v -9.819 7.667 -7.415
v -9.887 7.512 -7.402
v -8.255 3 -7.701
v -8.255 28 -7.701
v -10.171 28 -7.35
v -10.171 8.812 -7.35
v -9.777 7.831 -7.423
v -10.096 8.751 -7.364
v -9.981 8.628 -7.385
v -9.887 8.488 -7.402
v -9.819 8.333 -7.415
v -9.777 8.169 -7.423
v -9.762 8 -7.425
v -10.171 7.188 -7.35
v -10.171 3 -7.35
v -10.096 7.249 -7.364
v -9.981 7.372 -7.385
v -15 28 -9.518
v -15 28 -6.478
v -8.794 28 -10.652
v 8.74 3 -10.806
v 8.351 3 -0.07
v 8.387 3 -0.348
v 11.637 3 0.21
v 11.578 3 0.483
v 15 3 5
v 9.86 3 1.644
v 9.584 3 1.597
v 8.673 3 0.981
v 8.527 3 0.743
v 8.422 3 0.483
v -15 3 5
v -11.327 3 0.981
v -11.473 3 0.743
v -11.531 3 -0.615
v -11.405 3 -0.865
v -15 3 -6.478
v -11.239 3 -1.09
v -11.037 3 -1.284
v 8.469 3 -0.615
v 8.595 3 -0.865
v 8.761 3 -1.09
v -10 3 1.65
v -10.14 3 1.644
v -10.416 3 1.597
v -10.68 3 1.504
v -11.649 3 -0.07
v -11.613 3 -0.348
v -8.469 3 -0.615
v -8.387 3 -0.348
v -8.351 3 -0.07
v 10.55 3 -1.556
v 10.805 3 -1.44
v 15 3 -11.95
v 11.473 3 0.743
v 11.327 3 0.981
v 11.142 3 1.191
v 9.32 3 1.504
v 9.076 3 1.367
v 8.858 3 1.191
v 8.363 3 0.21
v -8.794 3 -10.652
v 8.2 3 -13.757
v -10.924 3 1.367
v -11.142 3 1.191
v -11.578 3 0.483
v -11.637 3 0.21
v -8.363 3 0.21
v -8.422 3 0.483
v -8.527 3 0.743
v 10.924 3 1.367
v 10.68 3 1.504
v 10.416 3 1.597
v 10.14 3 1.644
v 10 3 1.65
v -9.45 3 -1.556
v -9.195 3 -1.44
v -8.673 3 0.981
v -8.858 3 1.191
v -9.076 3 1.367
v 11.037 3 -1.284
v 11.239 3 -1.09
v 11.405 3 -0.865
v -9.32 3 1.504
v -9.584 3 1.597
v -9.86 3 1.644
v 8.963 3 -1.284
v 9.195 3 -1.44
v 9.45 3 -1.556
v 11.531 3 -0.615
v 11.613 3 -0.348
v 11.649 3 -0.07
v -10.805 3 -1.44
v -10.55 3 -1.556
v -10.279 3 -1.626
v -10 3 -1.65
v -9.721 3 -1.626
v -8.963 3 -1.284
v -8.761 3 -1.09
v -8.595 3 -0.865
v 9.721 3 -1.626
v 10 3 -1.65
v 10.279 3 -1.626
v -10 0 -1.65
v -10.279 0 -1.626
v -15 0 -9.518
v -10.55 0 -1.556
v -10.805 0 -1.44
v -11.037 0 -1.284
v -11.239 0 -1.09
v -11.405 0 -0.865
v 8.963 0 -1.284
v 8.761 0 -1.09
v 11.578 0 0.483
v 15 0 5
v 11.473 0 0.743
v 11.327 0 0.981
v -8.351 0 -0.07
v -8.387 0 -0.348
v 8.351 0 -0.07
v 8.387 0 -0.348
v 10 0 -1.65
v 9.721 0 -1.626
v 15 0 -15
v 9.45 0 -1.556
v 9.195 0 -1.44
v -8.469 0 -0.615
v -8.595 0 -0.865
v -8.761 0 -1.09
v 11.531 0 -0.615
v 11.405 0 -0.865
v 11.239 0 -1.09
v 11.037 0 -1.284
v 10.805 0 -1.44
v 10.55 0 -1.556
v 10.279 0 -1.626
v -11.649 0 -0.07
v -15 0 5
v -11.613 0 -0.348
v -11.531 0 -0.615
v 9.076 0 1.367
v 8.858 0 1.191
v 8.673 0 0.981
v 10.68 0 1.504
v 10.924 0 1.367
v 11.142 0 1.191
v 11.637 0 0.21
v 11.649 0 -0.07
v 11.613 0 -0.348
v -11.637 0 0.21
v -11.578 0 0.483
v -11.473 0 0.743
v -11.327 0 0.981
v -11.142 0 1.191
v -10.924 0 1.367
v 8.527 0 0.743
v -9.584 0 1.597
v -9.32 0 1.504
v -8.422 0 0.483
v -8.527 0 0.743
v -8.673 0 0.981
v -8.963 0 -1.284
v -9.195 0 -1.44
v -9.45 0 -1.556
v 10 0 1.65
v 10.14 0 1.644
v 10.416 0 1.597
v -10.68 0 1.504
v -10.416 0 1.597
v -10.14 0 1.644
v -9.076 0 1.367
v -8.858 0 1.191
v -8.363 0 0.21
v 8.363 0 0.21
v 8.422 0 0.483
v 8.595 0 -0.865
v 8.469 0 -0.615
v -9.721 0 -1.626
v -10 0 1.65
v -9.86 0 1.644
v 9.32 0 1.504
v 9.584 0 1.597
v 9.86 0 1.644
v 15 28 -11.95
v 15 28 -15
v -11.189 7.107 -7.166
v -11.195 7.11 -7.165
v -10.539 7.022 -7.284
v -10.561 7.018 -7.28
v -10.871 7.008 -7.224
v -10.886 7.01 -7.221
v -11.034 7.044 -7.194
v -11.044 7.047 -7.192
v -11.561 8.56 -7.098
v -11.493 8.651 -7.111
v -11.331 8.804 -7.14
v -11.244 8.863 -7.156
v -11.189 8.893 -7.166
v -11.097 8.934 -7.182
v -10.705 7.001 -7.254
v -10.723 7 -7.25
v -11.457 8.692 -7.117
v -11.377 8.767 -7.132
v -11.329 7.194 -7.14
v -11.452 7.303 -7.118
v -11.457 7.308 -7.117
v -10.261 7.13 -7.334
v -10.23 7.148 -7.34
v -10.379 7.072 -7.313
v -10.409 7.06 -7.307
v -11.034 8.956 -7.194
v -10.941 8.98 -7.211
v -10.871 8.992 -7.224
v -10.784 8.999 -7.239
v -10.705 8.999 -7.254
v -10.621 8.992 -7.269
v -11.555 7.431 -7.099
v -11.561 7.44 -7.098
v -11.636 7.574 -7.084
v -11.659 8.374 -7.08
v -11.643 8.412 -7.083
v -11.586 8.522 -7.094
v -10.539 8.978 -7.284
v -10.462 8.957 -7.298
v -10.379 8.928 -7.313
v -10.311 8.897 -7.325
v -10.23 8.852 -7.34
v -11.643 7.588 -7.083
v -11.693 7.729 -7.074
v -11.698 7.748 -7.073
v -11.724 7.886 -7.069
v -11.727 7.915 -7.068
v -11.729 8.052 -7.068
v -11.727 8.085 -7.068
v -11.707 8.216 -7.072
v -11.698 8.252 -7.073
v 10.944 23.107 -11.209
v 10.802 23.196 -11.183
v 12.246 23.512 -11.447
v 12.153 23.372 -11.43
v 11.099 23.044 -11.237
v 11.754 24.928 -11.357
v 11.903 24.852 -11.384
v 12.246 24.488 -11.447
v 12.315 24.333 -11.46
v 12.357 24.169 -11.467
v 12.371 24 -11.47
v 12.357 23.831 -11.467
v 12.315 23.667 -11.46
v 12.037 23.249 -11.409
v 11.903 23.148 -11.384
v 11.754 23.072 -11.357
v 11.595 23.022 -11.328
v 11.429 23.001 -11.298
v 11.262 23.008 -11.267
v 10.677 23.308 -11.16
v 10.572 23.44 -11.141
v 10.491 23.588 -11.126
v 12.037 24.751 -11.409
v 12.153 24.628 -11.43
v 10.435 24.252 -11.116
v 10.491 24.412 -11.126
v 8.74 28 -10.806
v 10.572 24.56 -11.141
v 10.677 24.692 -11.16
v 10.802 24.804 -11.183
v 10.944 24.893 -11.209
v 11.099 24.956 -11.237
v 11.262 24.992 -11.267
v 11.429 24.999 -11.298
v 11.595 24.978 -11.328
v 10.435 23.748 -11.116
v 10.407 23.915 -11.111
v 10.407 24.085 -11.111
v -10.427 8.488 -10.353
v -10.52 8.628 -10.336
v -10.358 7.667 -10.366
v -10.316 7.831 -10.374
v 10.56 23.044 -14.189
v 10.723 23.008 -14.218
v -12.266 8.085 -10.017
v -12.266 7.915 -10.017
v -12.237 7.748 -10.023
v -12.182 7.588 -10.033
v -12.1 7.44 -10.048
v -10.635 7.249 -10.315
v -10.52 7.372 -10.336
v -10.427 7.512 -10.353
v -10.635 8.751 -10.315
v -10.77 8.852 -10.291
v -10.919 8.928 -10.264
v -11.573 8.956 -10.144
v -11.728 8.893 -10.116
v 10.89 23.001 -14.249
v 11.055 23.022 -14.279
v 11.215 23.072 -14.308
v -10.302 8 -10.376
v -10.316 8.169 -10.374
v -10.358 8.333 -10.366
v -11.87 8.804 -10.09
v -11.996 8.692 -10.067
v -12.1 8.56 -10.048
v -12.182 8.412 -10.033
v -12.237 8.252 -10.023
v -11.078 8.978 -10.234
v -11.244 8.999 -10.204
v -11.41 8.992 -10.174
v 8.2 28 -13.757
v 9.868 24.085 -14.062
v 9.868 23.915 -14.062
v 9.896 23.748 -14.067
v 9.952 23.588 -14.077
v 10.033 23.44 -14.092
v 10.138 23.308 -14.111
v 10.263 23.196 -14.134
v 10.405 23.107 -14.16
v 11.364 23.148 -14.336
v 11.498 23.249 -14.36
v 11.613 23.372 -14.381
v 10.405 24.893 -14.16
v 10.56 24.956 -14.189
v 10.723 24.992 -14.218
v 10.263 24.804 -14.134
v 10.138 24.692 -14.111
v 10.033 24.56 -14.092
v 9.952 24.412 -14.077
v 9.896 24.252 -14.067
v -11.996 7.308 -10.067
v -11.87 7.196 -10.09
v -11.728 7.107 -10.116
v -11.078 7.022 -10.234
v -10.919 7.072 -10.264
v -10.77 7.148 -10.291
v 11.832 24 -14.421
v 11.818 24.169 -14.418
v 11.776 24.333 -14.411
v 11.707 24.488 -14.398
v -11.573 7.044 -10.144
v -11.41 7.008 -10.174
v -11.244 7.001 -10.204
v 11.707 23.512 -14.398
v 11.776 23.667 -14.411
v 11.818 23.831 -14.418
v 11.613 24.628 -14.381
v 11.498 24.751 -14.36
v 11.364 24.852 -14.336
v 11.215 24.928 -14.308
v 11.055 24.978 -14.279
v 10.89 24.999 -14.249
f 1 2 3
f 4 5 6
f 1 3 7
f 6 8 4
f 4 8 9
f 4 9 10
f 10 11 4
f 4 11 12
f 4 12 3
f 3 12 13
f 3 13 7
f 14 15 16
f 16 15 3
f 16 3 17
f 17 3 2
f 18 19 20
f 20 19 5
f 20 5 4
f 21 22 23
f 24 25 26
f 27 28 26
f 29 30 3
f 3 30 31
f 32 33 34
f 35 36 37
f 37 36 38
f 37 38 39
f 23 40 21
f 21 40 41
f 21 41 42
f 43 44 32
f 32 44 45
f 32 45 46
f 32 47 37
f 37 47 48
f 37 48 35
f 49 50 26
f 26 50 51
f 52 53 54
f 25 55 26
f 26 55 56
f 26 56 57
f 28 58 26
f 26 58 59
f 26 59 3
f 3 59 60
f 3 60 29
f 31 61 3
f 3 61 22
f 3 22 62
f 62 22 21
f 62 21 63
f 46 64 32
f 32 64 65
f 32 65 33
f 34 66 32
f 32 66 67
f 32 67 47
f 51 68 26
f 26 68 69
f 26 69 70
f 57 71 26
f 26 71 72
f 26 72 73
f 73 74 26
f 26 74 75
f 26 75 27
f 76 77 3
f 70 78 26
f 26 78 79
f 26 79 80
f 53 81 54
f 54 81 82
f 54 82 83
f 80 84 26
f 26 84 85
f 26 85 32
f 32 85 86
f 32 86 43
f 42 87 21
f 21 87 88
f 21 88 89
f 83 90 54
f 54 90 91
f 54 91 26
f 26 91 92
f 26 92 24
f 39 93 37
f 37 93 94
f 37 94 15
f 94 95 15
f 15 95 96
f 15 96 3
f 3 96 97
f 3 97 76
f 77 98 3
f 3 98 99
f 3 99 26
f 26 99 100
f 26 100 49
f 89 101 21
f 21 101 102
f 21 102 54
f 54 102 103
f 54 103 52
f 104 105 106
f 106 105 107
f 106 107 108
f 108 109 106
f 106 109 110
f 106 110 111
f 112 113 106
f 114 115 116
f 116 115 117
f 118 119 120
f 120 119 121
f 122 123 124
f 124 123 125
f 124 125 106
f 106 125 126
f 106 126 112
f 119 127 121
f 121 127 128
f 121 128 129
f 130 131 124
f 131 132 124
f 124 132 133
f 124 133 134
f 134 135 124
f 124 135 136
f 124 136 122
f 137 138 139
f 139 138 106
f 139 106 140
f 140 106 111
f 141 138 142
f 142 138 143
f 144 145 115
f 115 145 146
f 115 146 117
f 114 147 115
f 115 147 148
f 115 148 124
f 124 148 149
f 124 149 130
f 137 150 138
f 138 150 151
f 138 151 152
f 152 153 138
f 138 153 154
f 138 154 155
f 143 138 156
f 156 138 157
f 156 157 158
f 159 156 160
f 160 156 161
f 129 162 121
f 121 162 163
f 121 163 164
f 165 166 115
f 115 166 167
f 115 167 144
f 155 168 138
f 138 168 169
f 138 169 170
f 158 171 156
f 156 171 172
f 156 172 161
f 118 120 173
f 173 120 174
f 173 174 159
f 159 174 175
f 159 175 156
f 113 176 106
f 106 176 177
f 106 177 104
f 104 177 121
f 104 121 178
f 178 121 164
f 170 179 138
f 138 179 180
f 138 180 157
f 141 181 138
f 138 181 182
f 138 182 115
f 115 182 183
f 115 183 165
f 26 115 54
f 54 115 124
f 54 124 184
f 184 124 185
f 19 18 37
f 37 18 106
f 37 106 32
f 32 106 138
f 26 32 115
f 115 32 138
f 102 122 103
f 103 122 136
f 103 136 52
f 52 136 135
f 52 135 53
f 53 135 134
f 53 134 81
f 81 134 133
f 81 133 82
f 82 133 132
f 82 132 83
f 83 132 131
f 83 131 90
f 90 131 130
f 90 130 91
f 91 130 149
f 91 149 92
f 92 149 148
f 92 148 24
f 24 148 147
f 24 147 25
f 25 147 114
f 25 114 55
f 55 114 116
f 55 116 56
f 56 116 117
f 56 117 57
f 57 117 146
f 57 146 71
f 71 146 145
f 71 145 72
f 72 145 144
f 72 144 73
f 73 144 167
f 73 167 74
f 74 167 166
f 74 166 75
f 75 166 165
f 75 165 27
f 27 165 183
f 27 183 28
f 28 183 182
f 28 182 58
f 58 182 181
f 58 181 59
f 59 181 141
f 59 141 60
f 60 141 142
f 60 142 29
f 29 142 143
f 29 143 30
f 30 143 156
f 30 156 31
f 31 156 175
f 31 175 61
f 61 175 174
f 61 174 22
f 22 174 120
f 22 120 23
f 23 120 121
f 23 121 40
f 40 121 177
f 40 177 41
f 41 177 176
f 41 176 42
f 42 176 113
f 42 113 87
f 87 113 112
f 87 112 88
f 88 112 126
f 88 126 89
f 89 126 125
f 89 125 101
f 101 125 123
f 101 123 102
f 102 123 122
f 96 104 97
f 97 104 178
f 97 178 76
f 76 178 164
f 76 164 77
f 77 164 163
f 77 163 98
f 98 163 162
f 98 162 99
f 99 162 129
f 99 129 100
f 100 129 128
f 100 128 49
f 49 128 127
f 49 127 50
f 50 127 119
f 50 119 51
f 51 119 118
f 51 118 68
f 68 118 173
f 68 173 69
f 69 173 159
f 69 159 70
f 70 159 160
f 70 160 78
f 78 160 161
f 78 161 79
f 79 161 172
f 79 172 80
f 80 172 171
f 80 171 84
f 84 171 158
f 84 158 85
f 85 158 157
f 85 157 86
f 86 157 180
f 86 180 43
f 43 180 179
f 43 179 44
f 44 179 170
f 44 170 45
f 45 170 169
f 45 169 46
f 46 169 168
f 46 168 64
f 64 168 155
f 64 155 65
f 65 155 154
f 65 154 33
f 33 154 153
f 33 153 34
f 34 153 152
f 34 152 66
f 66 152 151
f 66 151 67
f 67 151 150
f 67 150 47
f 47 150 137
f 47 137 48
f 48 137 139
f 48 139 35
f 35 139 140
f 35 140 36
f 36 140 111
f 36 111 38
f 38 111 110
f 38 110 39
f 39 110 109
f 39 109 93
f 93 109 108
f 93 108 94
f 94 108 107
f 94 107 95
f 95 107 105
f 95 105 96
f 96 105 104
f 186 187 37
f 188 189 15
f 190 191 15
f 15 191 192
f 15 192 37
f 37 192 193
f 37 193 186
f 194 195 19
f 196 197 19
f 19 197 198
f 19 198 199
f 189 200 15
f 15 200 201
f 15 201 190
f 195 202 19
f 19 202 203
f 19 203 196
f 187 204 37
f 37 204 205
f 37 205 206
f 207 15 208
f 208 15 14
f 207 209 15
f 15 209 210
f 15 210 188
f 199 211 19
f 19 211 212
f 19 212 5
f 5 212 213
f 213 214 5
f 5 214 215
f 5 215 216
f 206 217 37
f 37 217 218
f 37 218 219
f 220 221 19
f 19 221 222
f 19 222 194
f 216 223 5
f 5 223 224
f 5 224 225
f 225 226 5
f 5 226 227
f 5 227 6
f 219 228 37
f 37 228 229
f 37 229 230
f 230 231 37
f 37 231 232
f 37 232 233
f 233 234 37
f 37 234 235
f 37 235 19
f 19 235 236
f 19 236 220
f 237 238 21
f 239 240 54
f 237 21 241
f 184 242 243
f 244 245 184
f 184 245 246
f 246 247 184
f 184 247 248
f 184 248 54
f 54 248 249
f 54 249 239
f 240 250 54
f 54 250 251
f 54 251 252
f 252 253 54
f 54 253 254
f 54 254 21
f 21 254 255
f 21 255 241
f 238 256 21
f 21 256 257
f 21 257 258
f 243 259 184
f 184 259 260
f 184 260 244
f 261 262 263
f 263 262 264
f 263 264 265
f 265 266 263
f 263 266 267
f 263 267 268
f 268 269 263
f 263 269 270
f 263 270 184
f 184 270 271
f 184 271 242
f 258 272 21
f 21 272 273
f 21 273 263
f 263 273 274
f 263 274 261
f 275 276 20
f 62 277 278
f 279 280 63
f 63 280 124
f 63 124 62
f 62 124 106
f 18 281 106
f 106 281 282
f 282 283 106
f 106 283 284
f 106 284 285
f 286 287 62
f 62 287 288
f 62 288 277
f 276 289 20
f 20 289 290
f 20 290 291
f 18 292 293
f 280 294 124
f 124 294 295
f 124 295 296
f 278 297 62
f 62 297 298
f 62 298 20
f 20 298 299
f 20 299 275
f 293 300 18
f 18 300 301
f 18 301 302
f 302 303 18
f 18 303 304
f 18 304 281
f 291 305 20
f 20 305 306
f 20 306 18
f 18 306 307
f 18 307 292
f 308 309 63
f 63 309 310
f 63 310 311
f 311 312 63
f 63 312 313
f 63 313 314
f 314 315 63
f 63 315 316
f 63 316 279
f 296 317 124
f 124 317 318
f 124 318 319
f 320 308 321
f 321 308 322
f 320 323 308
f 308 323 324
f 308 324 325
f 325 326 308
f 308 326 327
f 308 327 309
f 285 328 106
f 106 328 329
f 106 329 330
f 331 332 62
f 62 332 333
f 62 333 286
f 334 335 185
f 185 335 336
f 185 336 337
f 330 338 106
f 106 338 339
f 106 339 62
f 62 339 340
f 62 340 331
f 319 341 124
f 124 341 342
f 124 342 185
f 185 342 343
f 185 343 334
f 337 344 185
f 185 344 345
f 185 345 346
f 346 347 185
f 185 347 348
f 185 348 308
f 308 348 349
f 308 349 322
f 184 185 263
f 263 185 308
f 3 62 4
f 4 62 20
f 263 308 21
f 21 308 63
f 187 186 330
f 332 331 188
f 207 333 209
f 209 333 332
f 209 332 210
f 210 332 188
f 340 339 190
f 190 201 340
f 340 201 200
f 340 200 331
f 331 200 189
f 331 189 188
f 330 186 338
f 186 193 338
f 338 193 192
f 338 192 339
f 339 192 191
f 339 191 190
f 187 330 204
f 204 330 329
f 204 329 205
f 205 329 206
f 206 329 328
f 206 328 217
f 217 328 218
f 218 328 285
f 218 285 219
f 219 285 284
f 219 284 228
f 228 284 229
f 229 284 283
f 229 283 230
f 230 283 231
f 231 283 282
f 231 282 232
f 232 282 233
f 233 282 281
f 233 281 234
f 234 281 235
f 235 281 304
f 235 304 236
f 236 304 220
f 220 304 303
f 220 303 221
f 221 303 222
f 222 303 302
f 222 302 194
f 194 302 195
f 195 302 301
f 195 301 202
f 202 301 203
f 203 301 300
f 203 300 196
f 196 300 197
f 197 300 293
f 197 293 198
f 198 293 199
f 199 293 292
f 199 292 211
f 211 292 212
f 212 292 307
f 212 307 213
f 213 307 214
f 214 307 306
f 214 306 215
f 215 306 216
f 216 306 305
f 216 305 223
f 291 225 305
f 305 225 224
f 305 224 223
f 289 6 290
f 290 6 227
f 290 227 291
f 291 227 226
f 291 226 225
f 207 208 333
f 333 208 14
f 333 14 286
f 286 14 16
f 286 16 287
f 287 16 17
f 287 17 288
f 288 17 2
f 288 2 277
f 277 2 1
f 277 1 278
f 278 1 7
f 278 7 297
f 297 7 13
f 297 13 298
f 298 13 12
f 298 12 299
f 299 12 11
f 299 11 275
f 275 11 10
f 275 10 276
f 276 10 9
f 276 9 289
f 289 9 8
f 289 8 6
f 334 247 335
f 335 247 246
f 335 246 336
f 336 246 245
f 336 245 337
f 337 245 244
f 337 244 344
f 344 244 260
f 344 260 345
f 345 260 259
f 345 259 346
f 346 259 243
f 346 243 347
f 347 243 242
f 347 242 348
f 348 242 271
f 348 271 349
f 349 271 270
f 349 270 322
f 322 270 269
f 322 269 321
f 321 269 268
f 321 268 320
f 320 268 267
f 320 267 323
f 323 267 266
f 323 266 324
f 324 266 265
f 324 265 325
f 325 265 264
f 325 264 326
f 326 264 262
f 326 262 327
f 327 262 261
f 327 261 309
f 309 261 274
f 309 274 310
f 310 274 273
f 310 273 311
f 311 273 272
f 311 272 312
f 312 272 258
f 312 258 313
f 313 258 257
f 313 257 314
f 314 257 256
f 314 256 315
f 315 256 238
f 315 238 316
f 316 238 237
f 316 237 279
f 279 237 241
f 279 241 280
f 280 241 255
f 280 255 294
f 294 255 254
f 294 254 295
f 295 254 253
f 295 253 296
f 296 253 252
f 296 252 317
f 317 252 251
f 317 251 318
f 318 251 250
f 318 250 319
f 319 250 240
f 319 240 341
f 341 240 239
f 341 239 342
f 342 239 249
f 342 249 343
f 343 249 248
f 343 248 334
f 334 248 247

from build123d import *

# Parameters (mm, degrees)
SKETCH1_W      = 30
SKETCH1_H      = 20
SKETCH1_R      = 1.65
EXTRUDE1_DEPTH = 3
EXTRUDE2_DEPTH = 25
EXTRUDE3_DEPTH = 25
SKETCH5_R      = 1
SKETCH5_W      = 17.276120282
SKETCH5_H      = 25
EXTRUDE4_DEPTH = 25


with BuildPart() as part:
    # Sketch1 → Extrude1 (new body)
    with BuildSketch(Plane(origin=(0, 0, 0), x_dir=(1, 0, 0), z_dir=(0, 1, 0))):
        with Locations((0, 5)):
            Rectangle(SKETCH1_W, SKETCH1_H)
        with Locations(Location((10, 0, 0), (0, 0, 270))):
            Circle(SKETCH1_R, mode=Mode.SUBTRACT)
        with Locations(Location((-10, 0, 0), (0, 0, 270))):
            Circle(SKETCH1_R, mode=Mode.SUBTRACT)
    extrude(amount=EXTRUDE1_DEPTH)

    # Sketch3 → Extrude2 (add)
    with BuildSketch(Plane(origin=(0, 3, 0), x_dir=(1, 0, 0), z_dir=(0, 1, 0))):
        Polygon((15, 11.950319031), (15, 15), (-15, 9.517719352), (-14.462267947, 6.575155369), (-10.171425839, 7.350425006), align=None)
        Polygon((-14.462267947, 6.575155369), (-15, 9.517719352), (-15, 6.477997906), align=None)
    extrude(amount=EXTRUDE2_DEPTH)

    # Sketch4 → Extrude3 (cut)
    with BuildSketch(Plane(origin=(0, 3, 0), x_dir=(1, 0, 0), z_dir=(0, 1, 0))):
        Polygon((-15, 9.517719352), (-15, 15), (15, 15), align=None)
    extrude(amount=-EXTRUDE3_DEPTH, mode=Mode.SUBTRACT)

    # Sketch5 → Extrude4 (cut)
    with BuildSketch(Plane(origin=(-1.628525639, 0, -8.911577554), x_dir=(0.9837094537947668, 0, -0.1797657100639655), z_dir=(0.1797657100639655, 0, 0.9837094537947668))):
        with Locations((-9.26857722, 8)):
            Circle(SKETCH5_R)
        with Locations((13.23142278, 24)):
            Circle(SKETCH5_R)
        with Locations((1.901847648, 15.5)):
            Rectangle(SKETCH5_W, SKETCH5_H)
    extrude(amount=-EXTRUDE4_DEPTH, mode=Mode.SUBTRACT)


solid = part.part
